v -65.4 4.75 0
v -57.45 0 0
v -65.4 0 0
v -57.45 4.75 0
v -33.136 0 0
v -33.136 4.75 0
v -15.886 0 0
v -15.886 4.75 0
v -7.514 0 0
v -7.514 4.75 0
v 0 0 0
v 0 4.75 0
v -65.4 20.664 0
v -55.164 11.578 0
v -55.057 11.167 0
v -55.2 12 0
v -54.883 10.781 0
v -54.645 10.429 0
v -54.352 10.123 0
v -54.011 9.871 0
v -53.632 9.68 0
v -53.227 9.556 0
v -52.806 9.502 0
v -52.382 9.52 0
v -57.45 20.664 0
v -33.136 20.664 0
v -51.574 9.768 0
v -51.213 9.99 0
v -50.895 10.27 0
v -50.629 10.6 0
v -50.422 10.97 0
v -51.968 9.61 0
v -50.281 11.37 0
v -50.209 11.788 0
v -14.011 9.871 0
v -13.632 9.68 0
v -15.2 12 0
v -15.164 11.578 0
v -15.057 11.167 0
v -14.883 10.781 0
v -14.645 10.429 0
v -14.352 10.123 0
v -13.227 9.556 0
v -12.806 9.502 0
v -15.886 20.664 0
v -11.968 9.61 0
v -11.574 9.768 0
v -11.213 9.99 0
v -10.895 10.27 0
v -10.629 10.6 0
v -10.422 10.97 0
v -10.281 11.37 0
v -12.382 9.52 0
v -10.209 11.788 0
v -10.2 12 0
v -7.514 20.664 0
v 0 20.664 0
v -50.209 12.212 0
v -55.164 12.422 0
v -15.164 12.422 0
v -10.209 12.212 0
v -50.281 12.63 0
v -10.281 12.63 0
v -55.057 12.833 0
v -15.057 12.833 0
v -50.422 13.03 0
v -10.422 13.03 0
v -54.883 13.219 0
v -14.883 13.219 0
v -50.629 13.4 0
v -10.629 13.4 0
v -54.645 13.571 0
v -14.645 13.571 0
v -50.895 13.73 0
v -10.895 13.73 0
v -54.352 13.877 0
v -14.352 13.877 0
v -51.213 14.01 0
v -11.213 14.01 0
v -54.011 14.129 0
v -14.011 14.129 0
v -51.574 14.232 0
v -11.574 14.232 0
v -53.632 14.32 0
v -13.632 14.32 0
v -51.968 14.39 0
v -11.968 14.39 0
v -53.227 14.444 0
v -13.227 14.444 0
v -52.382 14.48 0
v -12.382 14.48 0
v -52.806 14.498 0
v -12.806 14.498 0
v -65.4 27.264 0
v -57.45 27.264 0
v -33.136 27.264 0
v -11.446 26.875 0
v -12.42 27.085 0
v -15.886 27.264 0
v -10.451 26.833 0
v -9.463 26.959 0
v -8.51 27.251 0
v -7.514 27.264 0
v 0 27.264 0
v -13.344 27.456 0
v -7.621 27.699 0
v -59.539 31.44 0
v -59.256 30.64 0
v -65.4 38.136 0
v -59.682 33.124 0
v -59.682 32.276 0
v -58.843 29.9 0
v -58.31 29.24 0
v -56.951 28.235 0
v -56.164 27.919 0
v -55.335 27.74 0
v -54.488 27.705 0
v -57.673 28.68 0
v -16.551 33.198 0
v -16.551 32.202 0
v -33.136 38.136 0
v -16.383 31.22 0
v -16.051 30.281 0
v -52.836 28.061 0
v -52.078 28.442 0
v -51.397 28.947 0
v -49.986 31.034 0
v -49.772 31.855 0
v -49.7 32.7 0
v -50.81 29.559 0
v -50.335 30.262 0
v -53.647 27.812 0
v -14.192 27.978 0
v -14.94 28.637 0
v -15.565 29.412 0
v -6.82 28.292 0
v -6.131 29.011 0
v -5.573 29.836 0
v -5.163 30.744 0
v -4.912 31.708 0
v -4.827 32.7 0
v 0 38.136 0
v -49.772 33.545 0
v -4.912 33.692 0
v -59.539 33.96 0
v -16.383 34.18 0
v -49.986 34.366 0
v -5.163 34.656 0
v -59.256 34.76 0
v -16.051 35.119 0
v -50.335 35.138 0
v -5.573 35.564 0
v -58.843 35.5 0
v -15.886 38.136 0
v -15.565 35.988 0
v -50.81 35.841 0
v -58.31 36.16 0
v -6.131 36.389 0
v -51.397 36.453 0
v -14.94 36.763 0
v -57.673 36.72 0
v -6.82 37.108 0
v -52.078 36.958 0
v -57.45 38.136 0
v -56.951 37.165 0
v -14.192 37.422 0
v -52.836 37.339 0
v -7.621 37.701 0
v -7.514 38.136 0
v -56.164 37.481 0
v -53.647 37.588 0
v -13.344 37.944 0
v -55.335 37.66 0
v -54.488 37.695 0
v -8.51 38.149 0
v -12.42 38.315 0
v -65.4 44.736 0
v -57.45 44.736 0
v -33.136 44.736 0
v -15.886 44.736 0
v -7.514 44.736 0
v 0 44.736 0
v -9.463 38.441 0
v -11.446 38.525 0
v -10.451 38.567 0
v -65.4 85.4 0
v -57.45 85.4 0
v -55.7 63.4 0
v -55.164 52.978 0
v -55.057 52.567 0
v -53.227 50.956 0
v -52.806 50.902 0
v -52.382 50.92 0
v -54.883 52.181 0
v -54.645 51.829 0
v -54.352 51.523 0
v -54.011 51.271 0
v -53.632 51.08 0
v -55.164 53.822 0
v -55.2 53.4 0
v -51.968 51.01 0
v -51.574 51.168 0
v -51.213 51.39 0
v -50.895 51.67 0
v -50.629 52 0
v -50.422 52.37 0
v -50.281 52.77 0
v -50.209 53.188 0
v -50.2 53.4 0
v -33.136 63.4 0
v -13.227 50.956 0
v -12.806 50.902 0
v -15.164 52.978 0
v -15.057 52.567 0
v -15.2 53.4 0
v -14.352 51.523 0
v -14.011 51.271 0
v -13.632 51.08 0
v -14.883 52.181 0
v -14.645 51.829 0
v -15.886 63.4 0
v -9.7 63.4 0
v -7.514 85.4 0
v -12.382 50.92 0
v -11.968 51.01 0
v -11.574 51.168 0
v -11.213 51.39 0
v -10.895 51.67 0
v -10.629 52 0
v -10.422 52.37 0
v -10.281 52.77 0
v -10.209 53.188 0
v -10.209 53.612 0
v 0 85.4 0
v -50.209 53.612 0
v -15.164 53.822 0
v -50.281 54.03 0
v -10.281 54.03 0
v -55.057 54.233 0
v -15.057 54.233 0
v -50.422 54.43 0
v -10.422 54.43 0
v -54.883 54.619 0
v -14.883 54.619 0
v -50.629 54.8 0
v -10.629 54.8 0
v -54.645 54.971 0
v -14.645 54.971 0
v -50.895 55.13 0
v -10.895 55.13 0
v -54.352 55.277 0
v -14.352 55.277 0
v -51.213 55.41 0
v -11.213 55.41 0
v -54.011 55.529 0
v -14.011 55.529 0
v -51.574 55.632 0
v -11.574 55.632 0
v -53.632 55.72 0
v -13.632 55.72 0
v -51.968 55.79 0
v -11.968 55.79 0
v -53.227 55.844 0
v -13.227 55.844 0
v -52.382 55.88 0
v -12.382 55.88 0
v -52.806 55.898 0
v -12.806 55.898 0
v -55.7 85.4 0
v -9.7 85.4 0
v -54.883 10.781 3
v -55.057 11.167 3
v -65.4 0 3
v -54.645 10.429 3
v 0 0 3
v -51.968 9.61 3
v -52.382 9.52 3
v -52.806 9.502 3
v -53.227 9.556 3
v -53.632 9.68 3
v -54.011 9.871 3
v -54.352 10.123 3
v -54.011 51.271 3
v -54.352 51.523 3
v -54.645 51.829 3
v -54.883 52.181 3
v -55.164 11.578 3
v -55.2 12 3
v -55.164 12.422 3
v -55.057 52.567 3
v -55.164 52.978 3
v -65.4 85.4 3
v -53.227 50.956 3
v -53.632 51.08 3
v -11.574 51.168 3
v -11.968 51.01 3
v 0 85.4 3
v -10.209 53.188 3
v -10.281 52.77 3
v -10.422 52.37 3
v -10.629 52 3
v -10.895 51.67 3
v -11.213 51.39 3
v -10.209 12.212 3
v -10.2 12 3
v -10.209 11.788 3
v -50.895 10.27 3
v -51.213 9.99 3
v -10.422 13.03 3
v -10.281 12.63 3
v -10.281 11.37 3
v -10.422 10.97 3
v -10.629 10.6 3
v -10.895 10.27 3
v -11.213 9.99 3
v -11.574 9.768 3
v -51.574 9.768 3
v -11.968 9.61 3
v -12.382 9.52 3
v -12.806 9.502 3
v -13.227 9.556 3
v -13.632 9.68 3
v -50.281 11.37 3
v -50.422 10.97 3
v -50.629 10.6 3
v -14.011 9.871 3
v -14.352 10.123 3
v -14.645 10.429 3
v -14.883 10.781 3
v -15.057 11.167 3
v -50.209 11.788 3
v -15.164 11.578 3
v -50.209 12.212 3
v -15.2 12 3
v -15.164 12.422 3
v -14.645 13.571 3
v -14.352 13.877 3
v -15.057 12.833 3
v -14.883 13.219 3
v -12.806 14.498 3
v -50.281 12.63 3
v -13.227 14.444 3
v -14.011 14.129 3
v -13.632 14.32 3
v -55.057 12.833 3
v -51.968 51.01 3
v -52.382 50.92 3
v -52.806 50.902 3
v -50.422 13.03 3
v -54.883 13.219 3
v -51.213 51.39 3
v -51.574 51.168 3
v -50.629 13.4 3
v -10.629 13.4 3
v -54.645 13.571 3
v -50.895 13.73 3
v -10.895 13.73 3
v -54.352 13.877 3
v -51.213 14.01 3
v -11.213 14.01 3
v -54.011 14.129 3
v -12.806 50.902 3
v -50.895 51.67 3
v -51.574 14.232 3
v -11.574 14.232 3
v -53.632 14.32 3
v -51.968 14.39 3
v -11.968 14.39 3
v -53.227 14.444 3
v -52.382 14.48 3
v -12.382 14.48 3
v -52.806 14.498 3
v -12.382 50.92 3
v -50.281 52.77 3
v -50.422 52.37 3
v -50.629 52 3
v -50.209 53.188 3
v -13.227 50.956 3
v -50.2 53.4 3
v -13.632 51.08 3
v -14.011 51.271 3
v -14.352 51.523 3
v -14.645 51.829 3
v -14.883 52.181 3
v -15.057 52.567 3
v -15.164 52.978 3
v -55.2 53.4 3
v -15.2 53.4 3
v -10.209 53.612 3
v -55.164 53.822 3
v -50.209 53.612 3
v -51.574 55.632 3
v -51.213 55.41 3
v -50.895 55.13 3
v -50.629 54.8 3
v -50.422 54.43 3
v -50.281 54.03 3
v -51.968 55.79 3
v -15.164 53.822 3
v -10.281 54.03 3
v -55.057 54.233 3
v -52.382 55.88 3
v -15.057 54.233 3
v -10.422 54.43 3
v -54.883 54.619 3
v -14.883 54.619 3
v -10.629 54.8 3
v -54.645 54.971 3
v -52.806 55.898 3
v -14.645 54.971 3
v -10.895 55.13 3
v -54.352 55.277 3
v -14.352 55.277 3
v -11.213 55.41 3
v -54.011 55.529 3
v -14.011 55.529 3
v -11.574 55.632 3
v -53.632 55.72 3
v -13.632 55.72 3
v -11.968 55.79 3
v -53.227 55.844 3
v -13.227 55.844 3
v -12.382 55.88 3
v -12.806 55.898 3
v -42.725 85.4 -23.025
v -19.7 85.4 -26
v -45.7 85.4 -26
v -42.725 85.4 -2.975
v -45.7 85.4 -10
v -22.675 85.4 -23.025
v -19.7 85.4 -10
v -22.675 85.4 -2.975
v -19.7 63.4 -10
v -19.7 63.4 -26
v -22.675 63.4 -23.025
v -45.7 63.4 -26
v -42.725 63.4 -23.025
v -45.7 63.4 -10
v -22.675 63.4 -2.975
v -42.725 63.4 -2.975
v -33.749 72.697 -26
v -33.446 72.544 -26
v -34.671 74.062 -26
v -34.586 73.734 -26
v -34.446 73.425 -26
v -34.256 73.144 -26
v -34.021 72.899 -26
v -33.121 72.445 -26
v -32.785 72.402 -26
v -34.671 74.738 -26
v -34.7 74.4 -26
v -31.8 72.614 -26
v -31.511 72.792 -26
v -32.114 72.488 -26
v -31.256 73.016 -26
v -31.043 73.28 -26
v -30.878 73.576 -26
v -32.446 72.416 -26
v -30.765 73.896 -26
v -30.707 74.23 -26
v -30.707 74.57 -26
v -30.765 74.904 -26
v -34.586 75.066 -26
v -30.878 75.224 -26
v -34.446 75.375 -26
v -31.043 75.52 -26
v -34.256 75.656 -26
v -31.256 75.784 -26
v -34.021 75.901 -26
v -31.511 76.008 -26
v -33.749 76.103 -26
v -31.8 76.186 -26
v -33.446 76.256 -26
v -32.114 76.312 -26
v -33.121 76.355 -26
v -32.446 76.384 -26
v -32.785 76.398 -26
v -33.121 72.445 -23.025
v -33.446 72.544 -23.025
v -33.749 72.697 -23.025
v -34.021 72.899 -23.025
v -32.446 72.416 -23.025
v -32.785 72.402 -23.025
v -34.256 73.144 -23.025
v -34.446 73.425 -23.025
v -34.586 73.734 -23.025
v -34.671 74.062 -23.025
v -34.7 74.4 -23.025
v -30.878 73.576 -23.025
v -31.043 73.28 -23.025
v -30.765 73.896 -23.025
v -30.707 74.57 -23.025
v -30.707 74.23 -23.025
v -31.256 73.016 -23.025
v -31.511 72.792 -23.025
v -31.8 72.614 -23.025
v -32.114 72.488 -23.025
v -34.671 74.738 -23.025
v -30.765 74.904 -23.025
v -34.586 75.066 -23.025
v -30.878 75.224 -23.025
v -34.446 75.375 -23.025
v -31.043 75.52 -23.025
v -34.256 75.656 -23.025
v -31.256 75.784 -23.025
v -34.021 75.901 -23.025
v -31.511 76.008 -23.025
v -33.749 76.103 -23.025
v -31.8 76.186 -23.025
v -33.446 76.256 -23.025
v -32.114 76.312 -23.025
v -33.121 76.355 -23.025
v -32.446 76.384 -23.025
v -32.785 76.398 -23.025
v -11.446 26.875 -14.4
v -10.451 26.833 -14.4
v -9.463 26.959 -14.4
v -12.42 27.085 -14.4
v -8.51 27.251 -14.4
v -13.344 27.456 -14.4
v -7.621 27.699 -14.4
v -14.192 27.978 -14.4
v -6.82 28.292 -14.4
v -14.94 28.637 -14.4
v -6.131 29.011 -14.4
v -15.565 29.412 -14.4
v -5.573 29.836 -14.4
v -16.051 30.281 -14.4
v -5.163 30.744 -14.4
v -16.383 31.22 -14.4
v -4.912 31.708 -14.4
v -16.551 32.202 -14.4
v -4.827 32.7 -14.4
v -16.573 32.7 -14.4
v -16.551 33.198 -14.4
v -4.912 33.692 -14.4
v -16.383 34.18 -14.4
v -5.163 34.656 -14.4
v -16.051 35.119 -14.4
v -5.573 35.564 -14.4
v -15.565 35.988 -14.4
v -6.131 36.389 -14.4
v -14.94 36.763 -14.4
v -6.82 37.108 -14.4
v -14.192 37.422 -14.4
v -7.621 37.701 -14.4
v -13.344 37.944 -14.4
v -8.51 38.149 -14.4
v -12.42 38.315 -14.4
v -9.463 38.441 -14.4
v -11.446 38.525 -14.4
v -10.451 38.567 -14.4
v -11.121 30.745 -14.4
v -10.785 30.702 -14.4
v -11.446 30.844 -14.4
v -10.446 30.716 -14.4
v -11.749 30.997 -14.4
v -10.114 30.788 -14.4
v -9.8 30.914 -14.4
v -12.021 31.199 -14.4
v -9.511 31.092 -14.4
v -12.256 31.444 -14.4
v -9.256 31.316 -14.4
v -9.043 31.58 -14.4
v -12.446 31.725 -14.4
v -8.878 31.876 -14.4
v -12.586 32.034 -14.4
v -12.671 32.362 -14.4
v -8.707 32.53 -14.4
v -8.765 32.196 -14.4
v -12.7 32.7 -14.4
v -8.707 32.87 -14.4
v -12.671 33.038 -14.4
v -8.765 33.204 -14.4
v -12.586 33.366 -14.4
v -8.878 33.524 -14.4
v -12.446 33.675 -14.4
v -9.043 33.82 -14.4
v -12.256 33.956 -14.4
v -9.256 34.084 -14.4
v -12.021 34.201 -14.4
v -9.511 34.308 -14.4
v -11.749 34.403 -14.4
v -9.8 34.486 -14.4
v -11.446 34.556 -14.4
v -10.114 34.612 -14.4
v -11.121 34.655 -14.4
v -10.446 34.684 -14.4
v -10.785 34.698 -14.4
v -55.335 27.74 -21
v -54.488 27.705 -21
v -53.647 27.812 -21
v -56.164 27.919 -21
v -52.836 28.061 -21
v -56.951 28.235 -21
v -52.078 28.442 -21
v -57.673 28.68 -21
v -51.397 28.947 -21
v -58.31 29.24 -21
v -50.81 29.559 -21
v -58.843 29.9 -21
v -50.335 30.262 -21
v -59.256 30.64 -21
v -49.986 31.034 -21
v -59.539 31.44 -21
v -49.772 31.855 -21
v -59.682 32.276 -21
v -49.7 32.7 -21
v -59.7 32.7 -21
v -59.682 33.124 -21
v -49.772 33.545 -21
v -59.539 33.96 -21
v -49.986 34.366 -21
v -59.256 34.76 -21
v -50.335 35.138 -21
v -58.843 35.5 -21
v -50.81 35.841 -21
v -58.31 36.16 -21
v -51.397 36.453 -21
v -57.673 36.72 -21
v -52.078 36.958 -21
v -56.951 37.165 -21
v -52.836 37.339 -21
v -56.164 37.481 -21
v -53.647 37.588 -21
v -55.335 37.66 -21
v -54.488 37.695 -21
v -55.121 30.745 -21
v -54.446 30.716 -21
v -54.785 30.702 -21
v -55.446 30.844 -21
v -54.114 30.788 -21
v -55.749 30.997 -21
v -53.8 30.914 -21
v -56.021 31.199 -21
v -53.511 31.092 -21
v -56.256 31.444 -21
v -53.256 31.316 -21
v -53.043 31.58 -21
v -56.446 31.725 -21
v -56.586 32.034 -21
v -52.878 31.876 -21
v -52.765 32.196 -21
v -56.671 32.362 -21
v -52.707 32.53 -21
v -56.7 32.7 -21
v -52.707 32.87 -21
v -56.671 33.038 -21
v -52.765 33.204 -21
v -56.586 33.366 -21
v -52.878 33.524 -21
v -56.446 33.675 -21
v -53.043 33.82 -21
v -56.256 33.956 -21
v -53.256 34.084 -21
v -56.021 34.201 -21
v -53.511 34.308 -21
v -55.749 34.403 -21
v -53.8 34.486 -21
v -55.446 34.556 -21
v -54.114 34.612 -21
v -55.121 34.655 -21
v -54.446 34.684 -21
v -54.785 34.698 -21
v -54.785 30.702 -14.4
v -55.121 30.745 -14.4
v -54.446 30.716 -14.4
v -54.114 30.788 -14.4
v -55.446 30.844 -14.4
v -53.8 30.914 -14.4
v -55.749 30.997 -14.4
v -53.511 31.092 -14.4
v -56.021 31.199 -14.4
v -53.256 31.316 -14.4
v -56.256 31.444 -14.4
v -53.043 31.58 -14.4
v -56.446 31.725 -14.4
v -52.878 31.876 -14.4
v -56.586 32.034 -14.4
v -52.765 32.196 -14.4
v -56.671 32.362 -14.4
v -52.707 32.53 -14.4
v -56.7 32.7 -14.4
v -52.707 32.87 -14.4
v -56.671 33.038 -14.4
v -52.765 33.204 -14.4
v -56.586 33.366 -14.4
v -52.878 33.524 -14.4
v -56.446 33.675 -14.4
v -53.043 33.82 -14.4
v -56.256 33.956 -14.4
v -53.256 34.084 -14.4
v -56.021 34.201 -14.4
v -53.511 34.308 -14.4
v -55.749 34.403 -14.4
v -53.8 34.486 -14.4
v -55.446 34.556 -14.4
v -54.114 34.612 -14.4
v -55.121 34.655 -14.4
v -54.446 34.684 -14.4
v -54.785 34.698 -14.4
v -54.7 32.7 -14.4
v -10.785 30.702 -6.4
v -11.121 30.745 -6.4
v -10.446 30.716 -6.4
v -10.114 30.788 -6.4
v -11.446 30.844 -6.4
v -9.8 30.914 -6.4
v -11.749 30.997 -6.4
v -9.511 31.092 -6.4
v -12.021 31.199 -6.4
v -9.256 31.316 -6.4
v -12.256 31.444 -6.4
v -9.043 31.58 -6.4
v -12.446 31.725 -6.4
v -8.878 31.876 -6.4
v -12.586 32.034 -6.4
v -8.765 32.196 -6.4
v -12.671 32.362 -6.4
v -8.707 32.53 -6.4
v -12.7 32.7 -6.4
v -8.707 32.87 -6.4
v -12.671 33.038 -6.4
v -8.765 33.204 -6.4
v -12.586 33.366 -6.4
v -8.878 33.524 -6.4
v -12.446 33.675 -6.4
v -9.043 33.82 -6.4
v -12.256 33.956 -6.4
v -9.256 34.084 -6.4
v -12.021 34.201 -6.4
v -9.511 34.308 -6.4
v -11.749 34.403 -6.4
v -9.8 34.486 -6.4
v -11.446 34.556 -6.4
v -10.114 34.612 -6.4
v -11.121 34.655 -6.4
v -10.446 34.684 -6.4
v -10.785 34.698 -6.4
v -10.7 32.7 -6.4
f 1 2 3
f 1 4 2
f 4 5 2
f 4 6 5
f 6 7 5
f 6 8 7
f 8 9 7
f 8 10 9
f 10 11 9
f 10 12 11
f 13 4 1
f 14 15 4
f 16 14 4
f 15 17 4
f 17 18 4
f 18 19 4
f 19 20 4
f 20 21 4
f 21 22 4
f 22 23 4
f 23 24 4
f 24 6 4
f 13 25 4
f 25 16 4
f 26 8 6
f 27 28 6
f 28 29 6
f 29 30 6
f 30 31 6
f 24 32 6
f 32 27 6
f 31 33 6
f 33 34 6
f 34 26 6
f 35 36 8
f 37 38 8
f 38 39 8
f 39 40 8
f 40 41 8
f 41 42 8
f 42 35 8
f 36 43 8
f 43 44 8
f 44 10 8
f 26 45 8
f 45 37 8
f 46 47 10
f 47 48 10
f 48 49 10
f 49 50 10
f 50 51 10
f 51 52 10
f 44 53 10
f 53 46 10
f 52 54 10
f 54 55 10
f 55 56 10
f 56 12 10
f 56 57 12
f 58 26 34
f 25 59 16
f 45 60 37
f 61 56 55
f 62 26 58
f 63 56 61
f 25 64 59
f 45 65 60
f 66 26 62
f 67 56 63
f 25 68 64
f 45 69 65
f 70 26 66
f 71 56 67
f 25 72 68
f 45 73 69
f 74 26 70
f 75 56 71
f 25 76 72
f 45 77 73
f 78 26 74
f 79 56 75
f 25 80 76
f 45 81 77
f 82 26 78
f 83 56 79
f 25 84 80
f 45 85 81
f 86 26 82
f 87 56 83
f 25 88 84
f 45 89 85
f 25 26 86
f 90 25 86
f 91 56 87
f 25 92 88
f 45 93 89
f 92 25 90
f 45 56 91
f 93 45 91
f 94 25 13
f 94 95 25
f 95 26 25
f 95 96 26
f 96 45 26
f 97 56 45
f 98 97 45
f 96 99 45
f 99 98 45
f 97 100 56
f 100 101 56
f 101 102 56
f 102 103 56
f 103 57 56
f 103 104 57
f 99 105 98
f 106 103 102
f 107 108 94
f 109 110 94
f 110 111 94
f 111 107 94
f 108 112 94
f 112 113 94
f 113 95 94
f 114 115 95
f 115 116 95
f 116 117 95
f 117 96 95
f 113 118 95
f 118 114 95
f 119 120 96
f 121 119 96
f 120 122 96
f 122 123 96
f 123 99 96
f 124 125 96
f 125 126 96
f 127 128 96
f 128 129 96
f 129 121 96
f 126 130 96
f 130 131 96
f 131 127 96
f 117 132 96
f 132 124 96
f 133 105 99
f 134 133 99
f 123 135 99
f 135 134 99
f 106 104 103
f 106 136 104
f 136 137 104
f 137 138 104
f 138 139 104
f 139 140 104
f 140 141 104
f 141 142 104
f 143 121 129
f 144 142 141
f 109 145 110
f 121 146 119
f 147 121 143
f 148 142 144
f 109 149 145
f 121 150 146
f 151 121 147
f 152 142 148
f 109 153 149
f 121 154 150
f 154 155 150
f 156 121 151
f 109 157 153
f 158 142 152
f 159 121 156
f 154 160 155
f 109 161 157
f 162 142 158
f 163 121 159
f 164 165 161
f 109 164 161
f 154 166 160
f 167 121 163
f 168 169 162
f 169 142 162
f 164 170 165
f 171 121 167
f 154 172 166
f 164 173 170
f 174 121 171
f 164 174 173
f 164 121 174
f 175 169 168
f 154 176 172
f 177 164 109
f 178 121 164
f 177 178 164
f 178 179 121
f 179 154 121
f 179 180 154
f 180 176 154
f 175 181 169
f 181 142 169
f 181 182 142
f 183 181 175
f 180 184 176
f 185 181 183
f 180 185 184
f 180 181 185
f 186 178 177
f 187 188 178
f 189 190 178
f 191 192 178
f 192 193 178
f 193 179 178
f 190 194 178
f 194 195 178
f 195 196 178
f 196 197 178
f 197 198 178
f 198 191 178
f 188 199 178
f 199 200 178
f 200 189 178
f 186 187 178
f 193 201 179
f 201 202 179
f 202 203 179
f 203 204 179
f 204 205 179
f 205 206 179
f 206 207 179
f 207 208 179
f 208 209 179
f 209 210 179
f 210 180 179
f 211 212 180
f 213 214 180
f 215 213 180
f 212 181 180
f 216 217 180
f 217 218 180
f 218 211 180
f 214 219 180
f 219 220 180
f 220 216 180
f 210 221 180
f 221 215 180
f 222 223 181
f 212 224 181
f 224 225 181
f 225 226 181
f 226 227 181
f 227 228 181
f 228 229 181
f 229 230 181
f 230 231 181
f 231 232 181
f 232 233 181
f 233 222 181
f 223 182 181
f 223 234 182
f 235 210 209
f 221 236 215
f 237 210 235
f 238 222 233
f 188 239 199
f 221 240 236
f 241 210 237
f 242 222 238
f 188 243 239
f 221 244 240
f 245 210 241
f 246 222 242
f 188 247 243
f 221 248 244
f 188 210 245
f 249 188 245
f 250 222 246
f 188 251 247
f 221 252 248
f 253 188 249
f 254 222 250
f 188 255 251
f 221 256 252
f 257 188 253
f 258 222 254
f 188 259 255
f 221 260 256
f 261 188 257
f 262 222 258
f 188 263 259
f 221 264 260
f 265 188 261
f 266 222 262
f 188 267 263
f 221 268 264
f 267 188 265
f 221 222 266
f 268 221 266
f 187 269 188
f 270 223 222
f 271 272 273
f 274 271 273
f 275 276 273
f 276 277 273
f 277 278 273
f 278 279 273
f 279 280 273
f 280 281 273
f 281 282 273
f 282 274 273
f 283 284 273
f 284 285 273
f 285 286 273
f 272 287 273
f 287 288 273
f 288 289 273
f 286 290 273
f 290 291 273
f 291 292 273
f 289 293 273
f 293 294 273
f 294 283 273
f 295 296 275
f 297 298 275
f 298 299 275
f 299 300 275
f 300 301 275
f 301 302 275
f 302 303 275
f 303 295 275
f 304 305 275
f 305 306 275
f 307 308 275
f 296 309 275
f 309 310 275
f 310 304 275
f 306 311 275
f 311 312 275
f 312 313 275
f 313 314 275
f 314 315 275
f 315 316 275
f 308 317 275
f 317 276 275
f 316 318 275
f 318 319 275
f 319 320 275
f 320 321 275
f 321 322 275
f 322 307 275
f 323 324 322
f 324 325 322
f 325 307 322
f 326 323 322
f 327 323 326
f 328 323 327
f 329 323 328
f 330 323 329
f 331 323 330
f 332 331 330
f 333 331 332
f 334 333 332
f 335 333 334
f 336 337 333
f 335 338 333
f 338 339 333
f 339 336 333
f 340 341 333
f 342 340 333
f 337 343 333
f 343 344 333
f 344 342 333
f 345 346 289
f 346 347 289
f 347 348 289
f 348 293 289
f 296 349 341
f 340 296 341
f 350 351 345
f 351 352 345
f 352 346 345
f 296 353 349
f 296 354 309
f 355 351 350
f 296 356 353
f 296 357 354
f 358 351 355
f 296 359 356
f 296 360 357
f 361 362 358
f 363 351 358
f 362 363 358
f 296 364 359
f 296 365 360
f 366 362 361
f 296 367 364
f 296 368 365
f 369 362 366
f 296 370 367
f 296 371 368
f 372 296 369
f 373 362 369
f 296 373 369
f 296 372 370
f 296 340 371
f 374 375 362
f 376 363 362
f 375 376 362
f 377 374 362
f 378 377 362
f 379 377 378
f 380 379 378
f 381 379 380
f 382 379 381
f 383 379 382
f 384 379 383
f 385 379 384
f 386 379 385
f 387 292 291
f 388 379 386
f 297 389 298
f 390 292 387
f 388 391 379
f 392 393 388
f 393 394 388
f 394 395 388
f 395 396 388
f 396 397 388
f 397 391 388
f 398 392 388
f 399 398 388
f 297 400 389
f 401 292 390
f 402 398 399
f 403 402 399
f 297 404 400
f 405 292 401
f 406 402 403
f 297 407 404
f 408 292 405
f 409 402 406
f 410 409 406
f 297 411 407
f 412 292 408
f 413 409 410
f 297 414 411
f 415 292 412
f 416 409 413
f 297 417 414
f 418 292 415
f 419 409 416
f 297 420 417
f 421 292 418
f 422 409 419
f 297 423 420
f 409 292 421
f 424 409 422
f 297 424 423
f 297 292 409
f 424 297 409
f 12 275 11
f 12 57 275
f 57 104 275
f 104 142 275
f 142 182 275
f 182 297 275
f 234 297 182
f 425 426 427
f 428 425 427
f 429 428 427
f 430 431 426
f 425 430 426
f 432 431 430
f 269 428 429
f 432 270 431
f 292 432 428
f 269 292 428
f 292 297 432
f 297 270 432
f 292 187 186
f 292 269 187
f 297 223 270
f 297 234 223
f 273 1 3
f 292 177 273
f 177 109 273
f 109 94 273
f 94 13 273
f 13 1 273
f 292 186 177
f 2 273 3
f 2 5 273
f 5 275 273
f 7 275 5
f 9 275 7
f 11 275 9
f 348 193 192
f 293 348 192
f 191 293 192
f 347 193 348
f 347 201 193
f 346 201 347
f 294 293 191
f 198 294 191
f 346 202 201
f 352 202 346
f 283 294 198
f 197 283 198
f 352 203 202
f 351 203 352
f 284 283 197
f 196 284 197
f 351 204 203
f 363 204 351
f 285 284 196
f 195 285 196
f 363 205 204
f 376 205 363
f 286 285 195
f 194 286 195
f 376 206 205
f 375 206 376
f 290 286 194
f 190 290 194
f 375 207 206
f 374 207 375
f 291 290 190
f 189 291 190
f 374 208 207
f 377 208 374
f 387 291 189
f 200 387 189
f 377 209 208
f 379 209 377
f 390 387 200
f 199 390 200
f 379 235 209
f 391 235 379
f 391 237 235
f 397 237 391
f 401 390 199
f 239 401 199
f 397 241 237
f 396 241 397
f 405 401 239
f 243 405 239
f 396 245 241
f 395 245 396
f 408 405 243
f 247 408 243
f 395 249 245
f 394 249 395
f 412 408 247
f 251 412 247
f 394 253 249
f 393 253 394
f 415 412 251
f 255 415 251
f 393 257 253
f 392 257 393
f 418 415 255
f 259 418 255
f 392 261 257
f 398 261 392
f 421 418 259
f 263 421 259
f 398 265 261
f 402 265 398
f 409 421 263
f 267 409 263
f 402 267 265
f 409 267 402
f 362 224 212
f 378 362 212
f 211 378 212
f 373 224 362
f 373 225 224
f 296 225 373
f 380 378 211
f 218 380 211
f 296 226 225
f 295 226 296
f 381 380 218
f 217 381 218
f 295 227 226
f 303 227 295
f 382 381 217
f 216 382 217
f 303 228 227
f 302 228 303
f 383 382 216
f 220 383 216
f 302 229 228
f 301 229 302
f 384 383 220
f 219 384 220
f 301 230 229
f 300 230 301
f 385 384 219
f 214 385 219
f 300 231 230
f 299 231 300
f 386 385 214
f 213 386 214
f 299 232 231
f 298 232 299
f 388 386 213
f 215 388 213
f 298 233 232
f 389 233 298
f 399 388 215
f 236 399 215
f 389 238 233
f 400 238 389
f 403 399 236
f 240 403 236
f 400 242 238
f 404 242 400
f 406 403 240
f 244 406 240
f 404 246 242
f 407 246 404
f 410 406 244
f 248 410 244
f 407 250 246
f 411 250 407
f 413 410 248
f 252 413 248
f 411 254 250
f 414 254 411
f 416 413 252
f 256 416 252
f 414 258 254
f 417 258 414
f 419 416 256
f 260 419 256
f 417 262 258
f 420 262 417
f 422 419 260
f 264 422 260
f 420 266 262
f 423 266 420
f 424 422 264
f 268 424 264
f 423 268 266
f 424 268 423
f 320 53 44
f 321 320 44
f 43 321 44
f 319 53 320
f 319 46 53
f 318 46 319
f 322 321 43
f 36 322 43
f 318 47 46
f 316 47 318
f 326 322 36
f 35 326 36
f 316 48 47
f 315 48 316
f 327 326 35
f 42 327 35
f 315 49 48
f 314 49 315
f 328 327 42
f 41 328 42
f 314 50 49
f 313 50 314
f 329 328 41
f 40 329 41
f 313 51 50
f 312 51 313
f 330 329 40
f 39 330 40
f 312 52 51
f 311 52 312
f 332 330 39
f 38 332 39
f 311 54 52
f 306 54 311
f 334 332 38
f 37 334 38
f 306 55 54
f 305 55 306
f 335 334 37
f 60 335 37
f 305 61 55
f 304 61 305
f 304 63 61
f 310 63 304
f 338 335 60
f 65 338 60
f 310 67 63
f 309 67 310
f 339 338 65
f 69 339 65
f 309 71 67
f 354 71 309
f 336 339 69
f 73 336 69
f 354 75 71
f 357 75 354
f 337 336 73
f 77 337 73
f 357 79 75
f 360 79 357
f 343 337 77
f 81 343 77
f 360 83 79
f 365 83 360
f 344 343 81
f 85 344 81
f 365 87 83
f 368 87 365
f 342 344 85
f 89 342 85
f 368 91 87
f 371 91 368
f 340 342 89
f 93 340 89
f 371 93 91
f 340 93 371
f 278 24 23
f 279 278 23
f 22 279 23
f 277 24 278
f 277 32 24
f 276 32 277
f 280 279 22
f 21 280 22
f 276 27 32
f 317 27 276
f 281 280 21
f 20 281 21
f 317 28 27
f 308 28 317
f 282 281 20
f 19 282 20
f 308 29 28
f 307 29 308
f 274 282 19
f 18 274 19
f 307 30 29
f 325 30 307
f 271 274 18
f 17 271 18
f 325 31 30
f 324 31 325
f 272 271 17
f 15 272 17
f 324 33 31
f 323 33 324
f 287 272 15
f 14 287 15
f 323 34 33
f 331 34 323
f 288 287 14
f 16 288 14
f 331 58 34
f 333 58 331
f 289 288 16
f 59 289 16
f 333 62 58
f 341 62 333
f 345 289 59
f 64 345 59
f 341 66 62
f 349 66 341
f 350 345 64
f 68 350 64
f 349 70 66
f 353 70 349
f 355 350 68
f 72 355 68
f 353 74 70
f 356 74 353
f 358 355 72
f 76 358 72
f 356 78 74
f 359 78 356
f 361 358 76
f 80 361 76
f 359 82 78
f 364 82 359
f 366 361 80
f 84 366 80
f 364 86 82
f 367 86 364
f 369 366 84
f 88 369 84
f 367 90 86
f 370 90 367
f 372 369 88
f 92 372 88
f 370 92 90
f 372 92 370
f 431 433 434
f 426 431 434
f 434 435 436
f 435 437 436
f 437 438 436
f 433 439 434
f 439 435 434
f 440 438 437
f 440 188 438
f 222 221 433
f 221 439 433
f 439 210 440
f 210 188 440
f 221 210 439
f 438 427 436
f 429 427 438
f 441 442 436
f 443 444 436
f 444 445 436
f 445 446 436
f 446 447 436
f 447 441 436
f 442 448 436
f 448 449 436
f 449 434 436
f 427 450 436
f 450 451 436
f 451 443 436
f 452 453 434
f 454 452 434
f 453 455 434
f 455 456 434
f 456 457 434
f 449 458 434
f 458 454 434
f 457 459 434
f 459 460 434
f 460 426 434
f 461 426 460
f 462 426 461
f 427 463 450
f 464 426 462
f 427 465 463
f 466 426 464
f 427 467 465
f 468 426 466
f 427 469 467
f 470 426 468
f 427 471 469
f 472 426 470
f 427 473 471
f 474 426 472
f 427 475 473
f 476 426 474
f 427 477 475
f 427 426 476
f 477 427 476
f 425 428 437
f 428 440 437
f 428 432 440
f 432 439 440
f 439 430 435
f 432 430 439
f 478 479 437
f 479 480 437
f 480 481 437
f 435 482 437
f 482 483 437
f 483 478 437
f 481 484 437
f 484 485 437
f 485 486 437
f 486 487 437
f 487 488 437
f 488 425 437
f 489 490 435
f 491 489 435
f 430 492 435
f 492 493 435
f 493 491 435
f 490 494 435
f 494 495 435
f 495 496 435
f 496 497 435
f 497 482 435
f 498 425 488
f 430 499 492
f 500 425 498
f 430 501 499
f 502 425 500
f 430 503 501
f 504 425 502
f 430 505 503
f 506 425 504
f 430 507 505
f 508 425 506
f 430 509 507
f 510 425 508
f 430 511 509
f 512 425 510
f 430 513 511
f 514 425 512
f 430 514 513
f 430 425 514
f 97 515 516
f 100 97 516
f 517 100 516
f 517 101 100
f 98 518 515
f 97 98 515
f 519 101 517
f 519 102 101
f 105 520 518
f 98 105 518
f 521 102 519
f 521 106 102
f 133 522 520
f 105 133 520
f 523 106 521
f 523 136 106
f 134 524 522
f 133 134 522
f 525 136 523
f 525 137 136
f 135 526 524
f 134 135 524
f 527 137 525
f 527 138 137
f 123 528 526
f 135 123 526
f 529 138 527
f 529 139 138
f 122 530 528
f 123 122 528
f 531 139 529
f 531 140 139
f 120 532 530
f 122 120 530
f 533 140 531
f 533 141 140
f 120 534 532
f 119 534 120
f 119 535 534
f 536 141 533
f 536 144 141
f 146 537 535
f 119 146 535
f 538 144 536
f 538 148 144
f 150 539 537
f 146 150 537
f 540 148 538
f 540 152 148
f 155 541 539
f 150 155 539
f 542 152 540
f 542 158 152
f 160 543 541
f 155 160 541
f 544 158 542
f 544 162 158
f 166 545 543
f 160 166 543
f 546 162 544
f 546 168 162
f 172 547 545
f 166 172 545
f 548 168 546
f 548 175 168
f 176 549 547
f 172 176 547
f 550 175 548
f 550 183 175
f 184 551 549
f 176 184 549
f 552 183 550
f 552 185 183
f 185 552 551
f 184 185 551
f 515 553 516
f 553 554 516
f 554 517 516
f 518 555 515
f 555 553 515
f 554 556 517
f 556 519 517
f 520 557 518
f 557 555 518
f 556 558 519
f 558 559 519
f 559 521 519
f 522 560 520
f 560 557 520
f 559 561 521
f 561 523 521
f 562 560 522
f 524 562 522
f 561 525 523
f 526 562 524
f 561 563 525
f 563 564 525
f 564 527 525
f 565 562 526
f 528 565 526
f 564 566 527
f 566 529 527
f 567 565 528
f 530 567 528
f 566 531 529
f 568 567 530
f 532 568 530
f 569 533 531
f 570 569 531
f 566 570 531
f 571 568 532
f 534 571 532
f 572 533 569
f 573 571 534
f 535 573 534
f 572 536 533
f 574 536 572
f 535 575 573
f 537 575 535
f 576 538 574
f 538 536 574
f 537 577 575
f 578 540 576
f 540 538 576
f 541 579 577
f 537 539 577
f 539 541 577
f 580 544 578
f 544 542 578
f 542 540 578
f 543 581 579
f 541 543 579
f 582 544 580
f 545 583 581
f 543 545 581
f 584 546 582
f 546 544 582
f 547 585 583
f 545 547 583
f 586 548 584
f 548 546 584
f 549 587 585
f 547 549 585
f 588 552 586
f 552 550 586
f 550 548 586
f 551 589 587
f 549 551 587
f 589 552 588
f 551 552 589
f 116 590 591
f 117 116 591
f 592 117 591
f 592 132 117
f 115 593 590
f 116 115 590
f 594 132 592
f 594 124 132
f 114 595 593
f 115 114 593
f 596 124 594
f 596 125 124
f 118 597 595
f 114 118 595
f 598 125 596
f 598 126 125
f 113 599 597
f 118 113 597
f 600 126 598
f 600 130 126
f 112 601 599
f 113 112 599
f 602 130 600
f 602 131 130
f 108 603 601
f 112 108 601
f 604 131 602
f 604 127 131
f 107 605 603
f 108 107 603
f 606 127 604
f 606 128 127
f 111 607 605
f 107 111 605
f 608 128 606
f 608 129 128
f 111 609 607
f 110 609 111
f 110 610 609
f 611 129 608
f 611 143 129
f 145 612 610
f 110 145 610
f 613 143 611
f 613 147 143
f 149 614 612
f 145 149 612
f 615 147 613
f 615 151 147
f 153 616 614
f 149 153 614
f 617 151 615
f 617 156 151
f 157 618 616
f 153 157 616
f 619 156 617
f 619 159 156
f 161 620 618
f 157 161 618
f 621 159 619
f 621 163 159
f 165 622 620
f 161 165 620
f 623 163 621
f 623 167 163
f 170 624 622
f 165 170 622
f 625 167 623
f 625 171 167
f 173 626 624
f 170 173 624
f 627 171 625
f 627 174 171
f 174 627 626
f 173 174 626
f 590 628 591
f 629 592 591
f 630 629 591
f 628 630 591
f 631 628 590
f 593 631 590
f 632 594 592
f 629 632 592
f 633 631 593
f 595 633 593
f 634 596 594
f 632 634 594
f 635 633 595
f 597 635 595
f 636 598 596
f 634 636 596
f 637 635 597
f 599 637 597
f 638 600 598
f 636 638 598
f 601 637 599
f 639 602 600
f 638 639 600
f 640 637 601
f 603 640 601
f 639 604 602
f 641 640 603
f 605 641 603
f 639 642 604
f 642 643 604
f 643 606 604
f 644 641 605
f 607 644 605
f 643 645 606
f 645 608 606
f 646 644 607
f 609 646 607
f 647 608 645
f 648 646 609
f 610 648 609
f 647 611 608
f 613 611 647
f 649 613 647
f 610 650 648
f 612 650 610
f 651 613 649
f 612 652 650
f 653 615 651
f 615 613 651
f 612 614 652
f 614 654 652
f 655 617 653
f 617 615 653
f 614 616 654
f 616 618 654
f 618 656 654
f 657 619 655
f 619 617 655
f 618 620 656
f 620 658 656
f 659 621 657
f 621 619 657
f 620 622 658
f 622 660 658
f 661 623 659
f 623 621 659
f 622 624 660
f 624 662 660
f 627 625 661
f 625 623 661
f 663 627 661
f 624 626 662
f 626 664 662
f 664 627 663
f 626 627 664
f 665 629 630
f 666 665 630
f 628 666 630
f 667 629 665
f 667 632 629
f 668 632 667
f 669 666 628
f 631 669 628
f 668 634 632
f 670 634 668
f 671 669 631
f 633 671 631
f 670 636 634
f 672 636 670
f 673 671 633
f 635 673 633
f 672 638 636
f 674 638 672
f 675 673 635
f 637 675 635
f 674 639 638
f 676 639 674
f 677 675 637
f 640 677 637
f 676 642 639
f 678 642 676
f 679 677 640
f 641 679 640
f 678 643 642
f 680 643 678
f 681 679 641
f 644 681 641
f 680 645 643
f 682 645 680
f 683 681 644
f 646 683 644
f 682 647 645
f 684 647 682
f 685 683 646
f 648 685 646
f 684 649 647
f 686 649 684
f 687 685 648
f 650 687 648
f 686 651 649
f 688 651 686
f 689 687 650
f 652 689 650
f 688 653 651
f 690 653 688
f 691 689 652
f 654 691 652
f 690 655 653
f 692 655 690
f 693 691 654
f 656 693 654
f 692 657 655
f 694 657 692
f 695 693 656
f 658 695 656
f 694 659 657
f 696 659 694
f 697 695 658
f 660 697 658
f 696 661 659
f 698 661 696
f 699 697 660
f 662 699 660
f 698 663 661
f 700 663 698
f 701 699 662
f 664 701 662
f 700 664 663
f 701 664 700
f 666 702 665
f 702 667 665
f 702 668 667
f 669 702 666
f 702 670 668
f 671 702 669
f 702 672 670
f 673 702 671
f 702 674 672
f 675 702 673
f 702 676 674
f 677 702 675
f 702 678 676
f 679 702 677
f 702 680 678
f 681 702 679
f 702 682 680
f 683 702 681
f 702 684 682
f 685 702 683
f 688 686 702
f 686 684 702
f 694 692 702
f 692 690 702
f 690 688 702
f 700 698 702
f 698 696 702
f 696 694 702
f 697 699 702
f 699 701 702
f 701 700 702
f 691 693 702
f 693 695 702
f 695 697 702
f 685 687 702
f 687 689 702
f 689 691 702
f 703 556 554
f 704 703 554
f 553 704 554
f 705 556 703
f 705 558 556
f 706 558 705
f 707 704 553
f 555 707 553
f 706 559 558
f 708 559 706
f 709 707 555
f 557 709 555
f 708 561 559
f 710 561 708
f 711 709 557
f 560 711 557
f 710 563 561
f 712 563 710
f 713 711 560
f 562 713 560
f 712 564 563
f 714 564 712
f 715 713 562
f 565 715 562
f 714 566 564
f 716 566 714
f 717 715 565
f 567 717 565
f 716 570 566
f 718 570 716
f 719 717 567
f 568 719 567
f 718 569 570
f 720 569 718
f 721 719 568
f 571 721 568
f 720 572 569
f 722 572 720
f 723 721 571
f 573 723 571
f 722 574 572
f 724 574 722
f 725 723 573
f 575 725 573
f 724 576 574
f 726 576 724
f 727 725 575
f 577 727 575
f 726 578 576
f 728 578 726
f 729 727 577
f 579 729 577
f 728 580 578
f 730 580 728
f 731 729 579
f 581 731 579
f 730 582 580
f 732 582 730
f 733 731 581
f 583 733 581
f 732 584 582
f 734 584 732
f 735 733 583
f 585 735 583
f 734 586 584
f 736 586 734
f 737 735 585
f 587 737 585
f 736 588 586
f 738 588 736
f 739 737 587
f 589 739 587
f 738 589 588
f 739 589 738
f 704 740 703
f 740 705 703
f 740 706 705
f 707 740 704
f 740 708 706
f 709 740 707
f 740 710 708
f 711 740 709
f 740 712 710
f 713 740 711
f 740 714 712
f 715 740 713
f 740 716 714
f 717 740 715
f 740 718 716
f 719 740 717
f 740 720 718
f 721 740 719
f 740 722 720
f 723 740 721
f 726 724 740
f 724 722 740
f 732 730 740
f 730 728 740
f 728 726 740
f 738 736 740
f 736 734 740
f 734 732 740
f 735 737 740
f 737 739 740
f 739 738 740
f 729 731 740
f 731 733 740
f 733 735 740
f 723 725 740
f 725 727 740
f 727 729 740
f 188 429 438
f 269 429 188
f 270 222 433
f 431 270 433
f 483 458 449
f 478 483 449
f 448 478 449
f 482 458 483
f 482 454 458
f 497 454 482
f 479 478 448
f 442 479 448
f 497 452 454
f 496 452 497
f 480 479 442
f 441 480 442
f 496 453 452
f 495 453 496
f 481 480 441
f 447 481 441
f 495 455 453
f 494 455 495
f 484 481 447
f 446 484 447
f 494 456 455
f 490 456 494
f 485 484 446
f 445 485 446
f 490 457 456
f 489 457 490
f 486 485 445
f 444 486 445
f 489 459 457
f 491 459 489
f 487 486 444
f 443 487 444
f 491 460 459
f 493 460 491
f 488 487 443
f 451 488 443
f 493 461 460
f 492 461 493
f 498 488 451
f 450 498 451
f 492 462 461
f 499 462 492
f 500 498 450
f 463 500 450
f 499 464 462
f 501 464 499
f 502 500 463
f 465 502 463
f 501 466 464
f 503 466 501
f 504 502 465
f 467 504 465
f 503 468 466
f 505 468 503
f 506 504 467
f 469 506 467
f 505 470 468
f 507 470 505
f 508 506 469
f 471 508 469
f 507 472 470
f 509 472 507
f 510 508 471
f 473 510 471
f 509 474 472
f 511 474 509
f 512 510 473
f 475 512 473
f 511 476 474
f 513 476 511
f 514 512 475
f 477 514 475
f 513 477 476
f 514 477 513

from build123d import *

# Parameters (mm, degrees)
SKETCH_1_W             = 65.4
SKETCH_1_H             = 85.4
SKETCH_1_R             = 2.5
EXTRUDE_632_DEPTH      = 3
SKETCH_2_W             = 26
SKETCH_2_H             = 22
EXTRUDE_871_DEPTH      = 26
SKETCH_3_W             = 20.05
SKETCH_3_H             = 20.05
CUT_EXTRUDE_1082_DEPTH = 95.724442463
SKETCH_8_R             = 5.872551453
EXTRUDE_1_DEPTH        = 14.4
SKETCH_4_R             = 2
EXTRUDE_3_DEPTH        = 14.4
SKETCH_12_R            = 5
EXTRUDE_5_DEPTH        = 21
SKETCH_13_R            = 2
CUT_EXTRUDE_1_DEPTH    = 6.6
SKETCH_14_R            = 2
CUT_EXTRUDE_3_DEPTH    = 8
CHAMFER_1_SIZE         = 10
CHAMFER_2_SIZE         = 10
SKETCH_15_R            = 2
CUT_EXTRUDE_4_DEPTH    = 8


with BuildPart() as part:
    # Эскиз1 → Extrude 632 (new body)
    with BuildSketch(Plane.XY):
        with Locations((-32.7, 42.7)):
            Rectangle(SKETCH_1_W, SKETCH_1_H)
        with Locations((-52.7, 53.4)):
            Circle(SKETCH_1_R, mode=Mode.SUBTRACT)
        with Locations(Location((-12.7, 53.4, 0), (0, 0, 180))):
            Circle(SKETCH_1_R, mode=Mode.SUBTRACT)
        with Locations((-12.7, 12)):
            Circle(SKETCH_1_R, mode=Mode.SUBTRACT)
        with Locations(Location((-52.7, 12, 0), (0, 0, 180))):
            Circle(SKETCH_1_R, mode=Mode.SUBTRACT)
    extrude(amount=EXTRUDE_632_DEPTH)

    # Эскиз2 → Extrude 871 (add)
    with BuildSketch(Plane(origin=(0, 0, 0), x_dir=(-1, 0, 0), z_dir=(0, 0, -1))):
        with Locations((32.7, 74.4)):
            Rectangle(SKETCH_2_W, SKETCH_2_H)
    extrude(amount=EXTRUDE_871_DEPTH)

    # Эскиз3 → Cut-Extrude 1082 (cut, through all)
    with BuildSketch(Plane.XZ.offset(-63.4)):
        with Locations((-32.7, -13)):
            Rectangle(SKETCH_3_W, SKETCH_3_H)
    extrude(amount=-CUT_EXTRUDE_1082_DEPTH, mode=Mode.SUBTRACT)

    # Эскиз8 → Бобышка-Вытянуть1 (add)
    with BuildSketch(Plane(origin=(0, 0, 0), x_dir=(-1, 0, 0), z_dir=(0, 0, -1))):
        with Locations(Location((10.7, 32.7, 0), (0, 0, 180))):
            Circle(SKETCH_8_R)
    extrude(amount=EXTRUDE_1_DEPTH)

    # Эскиз4 → Бобышка-Вытянуть3 (add)
    with BuildSketch(Plane(origin=(0, 0, 0), x_dir=(-1, 0, 0), z_dir=(0, 0, -1))):
        with Locations(Location((52.7, 32.7, 0), (0, 0, 180))):
            Circle(SKETCH_4_R)
    extrude(amount=EXTRUDE_3_DEPTH)

    # Эскиз12 → Бобышка-Вытянуть5 (add)
    with BuildSketch(Plane(origin=(0, 0, 0), x_dir=(-1, 0, 0), z_dir=(0, 0, -1))):
        with Locations(Location((54.7, 32.7, 0), (0, 0, 180))):
            Circle(SKETCH_12_R)
    extrude(amount=EXTRUDE_5_DEPTH)

    # Эскиз13 → Вырез-Вытянуть1 (cut)
    with BuildSketch(Plane(origin=(0, 0, -21), x_dir=(-1, 0, 0), z_dir=(0, 0, -1))):
        with Locations((54.7, 32.7)):
            Circle(SKETCH_13_R)
    extrude(amount=-CUT_EXTRUDE_1_DEPTH, mode=Mode.SUBTRACT)

    # Эскиз14 → Вырез-Вытянуть3 (cut)
    with BuildSketch(Plane(origin=(0, 0, -14.4), x_dir=(-1, 0, 0), z_dir=(0, 0, -1))):
        with Locations((10.7, 32.7)):
            Circle(SKETCH_14_R)
    extrude(amount=-CUT_EXTRUDE_3_DEPTH, mode=Mode.SUBTRACT)

    # Фаска1
    chamfer_1_edges = [part.edges().sort_by_distance(p)[0] for p in [
        (-45.7, 74.4, 0),
    ]]
    chamfer(chamfer_1_edges, length=CHAMFER_1_SIZE)

    # Фаска2
    chamfer_2_edges = [part.edges().sort_by_distance(p)[0] for p in [
        (-19.7, 74.4, 0),
    ]]
    chamfer(chamfer_2_edges, length=CHAMFER_2_SIZE)

    # Эскиз15 → Вырез-Вытянуть4 (cut)
    with BuildSketch(Plane(origin=(0, 0, -26), x_dir=(-1, 0, 0), z_dir=(0, 0, -1))):
        with Locations((32.7, 74.4)):
            Circle(SKETCH_15_R)
    extrude(amount=-CUT_EXTRUDE_4_DEPTH, mode=Mode.SUBTRACT)


solid = part.part
